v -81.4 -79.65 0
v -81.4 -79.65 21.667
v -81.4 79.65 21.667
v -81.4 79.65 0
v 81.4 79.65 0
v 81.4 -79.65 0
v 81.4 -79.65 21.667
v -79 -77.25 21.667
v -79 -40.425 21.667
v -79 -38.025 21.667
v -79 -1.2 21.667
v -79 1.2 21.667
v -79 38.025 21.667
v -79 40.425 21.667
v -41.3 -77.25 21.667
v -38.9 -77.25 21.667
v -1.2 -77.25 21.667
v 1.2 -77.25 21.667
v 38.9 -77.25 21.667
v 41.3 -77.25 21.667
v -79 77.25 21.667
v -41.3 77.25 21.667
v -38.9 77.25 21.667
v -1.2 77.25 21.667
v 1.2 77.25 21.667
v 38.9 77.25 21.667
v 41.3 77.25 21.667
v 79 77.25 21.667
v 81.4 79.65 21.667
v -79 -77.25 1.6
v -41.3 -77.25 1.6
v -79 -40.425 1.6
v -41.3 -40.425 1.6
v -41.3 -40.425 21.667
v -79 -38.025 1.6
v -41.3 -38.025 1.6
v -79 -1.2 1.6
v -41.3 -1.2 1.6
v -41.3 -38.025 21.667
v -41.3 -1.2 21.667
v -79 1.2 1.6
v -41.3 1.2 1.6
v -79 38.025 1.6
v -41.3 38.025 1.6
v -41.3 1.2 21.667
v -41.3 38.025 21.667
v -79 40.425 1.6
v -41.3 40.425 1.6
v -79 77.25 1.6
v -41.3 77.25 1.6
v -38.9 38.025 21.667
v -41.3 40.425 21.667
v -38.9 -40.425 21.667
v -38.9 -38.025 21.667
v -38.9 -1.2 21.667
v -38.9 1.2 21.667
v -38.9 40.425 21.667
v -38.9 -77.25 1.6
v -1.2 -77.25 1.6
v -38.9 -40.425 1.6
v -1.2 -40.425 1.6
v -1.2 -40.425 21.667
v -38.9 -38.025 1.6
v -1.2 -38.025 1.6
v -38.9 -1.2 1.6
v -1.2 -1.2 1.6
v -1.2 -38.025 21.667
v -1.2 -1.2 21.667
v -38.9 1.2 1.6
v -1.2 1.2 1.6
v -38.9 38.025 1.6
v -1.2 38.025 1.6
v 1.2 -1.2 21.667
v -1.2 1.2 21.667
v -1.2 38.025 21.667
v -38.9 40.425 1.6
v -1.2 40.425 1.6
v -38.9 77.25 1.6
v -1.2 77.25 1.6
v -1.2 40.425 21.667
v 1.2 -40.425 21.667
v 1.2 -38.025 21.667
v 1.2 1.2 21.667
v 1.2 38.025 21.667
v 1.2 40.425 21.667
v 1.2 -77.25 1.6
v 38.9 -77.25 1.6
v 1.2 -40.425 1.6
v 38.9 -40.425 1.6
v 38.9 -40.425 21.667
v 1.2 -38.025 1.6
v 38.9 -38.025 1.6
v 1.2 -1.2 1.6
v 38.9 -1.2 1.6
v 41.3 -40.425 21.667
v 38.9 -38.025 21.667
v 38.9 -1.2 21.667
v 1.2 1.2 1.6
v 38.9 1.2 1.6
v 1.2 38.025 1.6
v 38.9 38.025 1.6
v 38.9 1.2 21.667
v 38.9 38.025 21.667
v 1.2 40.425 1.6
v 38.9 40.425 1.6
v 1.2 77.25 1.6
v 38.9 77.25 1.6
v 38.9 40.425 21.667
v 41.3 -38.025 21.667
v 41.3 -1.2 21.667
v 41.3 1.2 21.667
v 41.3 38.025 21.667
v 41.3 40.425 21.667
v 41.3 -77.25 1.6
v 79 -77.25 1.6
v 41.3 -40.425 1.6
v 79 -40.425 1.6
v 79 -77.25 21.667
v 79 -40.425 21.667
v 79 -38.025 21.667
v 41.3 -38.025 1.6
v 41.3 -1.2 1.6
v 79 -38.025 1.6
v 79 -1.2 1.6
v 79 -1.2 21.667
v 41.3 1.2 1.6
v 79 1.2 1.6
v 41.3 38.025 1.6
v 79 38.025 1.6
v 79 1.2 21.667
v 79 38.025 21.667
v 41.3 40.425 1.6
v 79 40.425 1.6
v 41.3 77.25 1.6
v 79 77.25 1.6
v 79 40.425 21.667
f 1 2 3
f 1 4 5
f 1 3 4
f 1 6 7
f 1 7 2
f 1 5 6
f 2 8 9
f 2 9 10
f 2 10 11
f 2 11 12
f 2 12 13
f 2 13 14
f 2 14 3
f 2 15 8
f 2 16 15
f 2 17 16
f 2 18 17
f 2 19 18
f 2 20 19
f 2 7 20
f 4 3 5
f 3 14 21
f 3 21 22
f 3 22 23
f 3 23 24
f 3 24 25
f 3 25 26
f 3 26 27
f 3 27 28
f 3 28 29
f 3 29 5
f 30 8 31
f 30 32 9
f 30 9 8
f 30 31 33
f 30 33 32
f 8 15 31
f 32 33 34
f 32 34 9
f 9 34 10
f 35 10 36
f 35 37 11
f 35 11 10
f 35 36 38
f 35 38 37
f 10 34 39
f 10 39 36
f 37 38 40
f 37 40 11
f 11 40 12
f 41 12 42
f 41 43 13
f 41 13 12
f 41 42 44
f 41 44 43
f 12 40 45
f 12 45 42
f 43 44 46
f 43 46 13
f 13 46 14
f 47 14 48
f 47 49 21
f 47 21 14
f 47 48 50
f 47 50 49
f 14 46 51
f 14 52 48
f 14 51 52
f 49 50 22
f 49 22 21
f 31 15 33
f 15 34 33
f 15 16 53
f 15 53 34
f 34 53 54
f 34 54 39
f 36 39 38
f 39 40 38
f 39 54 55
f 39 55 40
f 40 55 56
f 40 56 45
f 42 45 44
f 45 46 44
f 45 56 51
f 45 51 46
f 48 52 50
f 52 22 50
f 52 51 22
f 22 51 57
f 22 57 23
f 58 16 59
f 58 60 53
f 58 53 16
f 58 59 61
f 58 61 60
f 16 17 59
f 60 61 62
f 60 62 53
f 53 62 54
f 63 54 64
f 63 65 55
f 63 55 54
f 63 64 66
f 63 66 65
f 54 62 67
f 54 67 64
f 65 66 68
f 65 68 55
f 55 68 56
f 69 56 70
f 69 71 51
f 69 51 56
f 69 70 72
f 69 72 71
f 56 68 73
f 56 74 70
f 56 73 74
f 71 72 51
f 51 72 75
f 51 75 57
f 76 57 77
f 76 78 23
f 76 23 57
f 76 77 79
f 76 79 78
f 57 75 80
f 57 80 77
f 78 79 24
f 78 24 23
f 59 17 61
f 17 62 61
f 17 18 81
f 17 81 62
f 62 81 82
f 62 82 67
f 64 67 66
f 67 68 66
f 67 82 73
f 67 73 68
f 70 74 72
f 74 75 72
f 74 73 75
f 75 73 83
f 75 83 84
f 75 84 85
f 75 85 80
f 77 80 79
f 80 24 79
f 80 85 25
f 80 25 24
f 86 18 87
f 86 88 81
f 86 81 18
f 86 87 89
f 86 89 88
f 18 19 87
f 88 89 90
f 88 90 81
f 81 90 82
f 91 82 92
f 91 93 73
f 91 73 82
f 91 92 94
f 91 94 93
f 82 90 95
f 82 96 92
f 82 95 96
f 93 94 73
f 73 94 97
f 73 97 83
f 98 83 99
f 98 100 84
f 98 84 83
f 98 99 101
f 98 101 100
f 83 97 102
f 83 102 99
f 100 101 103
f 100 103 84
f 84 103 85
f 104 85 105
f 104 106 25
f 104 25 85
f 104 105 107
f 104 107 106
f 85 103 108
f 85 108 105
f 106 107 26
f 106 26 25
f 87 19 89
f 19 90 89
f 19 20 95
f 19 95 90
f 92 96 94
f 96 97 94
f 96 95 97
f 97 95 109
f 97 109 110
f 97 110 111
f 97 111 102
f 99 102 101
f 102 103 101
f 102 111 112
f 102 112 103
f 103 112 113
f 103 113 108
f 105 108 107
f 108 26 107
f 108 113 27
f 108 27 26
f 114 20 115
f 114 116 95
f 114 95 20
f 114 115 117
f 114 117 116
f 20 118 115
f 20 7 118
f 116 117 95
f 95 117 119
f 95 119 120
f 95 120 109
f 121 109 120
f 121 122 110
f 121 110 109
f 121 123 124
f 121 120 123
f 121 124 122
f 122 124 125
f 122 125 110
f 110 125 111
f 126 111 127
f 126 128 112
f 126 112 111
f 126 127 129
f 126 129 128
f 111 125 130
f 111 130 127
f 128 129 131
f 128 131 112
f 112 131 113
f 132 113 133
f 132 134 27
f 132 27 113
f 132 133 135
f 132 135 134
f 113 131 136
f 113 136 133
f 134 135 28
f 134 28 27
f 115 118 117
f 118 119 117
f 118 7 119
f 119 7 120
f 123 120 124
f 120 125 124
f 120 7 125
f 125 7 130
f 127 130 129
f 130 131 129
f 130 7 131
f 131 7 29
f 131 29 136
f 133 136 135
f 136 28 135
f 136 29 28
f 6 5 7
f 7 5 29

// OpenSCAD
// Start: lazy_union
default_5_default_5();
// End: lazy_union

// Modules.

// 'PartMaterial undef-default - default 5.0'
module default_5_default_5() {
  // 'None : _combine_solids_and_holes'
  union() {
    // '_combine_solids_and_holes'
    difference() {
      // 'small_holes : _combine_solids_and_holes'
      union() {
        // 'box'
        multmatrix(m=[[1.0, 0.0, 0.0, -81.4], [0.0, 1.0, 0.0, -79.65], [0.0, 0.0, 1.0, 0.0], [0.0, 0.0, 0.0, 1.0]]) {
          // 'box : _combine_solids_and_holes'
          union() {
            // 'box'
            cube(size=[162.8, 159.3, 21.666666666666668]);
          }
        }
      }
      // 'small_holes'
      multmatrix(m=[[1.0, 0.0, 0.0, -79.0], [0.0, 1.0, 0.0, 40.425], [0.0, 0.0, 1.0, 1.6], [0.0, 0.0, 0.0, 1.0]]) {
        // "('hole', 0, 0) : _combine_solids_and_holes"
        union() {
          // ('hole', 0, 0)
          cube(size=[37.7, 36.825, 20.076666666666668]);
        }
      }
      // 'small_holes'
      multmatrix(m=[[1.0, 0.0, 0.0, -79.0], [0.0, 1.0, 0.0, 1.2000000000000028], [0.0, 0.0, 1.0, 1.6], [0.0, 0.0, 0.0, 1.0]]) {
        // "('hole', 0, 1) : _combine_solids_and_holes"
        union() {
          // ('hole', 0, 1)
          cube(size=[37.7, 36.825, 20.076666666666668]);
        }
      }
      // 'small_holes'
      multmatrix(m=[[1.0, 0.0, 0.0, -79.0], [0.0, 1.0, 0.0, -38.025000000000006], [0.0, 0.0, 1.0, 1.6], [0.0, 0.0, 0.0, 1.0]]) {
        // "('hole', 0, 2) : _combine_solids_and_holes"
        union() {
          // ('hole', 0, 2)
          cube(size=[37.7, 36.825, 20.076666666666668]);
        }
      }
      // 'small_holes'
      multmatrix(m=[[1.0, 0.0, 0.0, -79.0], [0.0, 1.0, 0.0, -77.25000000000001], [0.0, 0.0, 1.0, 1.6], [0.0, 0.0, 0.0, 1.0]]) {
        // "('hole', 0, 3) : _combine_solids_and_holes"
        union() {
          // ('hole', 0, 3)
          cube(size=[37.7, 36.825, 20.076666666666668]);
        }
      }
      // 'small_holes'
      multmatrix(m=[[1.0, 0.0, 0.0, -38.900000000000006], [0.0, 1.0, 0.0, 40.425], [0.0, 0.0, 1.0, 1.6], [0.0, 0.0, 0.0, 1.0]]) {
        // "('hole', 1, 0) : _combine_solids_and_holes"
        union() {
          // ('hole', 1, 0)
          cube(size=[37.7, 36.825, 20.076666666666668]);
        }
      }
      // 'small_holes'
      multmatrix(m=[[1.0, 0.0, 0.0, -38.900000000000006], [0.0, 1.0, 0.0, 1.2000000000000028], [0.0, 0.0, 1.0, 1.6], [0.0, 0.0, 0.0, 1.0]]) {
        // "('hole', 1, 1) : _combine_solids_and_holes"
        union() {
          // ('hole', 1, 1)
          cube(size=[37.7, 36.825, 20.076666666666668]);
        }
      }
      // 'small_holes'
      multmatrix(m=[[1.0, 0.0, 0.0, -38.900000000000006], [0.0, 1.0, 0.0, -38.025000000000006], [0.0, 0.0, 1.0, 1.6], [0.0, 0.0, 0.0, 1.0]]) {
        // "('hole', 1, 2) : _combine_solids_and_holes"
        union() {
          // ('hole', 1, 2)
          cube(size=[37.7, 36.825, 20.076666666666668]);
        }
      }
      // 'small_holes'
      multmatrix(m=[[1.0, 0.0, 0.0, -38.900000000000006], [0.0, 1.0, 0.0, -77.25000000000001], [0.0, 0.0, 1.0, 1.6], [0.0, 0.0, 0.0, 1.0]]) {
        // "('hole', 1, 3) : _combine_solids_and_holes"
        union() {
          // ('hole', 1, 3)
          cube(size=[37.7, 36.825, 20.076666666666668]);
        }
      }
      // 'small_holes'
      multmatrix(m=[[1.0, 0.0, 0.0, 1.2000000000000028], [0.0, 1.0, 0.0, 40.425], [0.0, 0.0, 1.0, 1.6], [0.0, 0.0, 0.0, 1.0]]) {
        // "('hole', 2, 0) : _combine_solids_and_holes"
        union() {
          // ('hole', 2, 0)
          cube(size=[37.7, 36.825, 20.076666666666668]);
        }
      }
      // 'small_holes'
      multmatrix(m=[[1.0, 0.0, 0.0, 1.2000000000000028], [0.0, 1.0, 0.0, 1.2000000000000028], [0.0, 0.0, 1.0, 1.6], [0.0, 0.0, 0.0, 1.0]]) {
        // "('hole', 2, 1) : _combine_solids_and_holes"
        union() {
          // ('hole', 2, 1)
          cube(size=[37.7, 36.825, 20.076666666666668]);
        }
      }
      // 'small_holes'
      multmatrix(m=[[1.0, 0.0, 0.0, 1.2000000000000028], [0.0, 1.0, 0.0, -38.025000000000006], [0.0, 0.0, 1.0, 1.6], [0.0, 0.0, 0.0, 1.0]]) {
        // "('hole', 2, 2) : _combine_solids_and_holes"
        union() {
          // ('hole', 2, 2)
          cube(size=[37.7, 36.825, 20.076666666666668]);
        }
      }
      // 'small_holes'
      multmatrix(m=[[1.0, 0.0, 0.0, 1.2000000000000028], [0.0, 1.0, 0.0, -77.25000000000001], [0.0, 0.0, 1.0, 1.6], [0.0, 0.0, 0.0, 1.0]]) {
        // "('hole', 2, 3) : _combine_solids_and_holes"
        union() {
          // ('hole', 2, 3)
          cube(size=[37.7, 36.825, 20.076666666666668]);
        }
      }
      // 'small_holes'
      multmatrix(m=[[1.0, 0.0, 0.0, 41.30000000000001], [0.0, 1.0, 0.0, 40.425], [0.0, 0.0, 1.0, 1.6], [0.0, 0.0, 0.0, 1.0]]) {
        // "('hole', 3, 0) : _combine_solids_and_holes"
        union() {
          // ('hole', 3, 0)
          cube(size=[37.7, 36.825, 20.076666666666668]);
        }
      }
      // 'small_holes'
      multmatrix(m=[[1.0, 0.0, 0.0, 41.30000000000001], [0.0, 1.0, 0.0, 1.2000000000000028], [0.0, 0.0, 1.0, 1.6], [0.0, 0.0, 0.0, 1.0]]) {
        // "('hole', 3, 1) : _combine_solids_and_holes"
        union() {
          // ('hole', 3, 1)
          cube(size=[37.7, 36.825, 20.076666666666668]);
        }
      }
      // 'small_holes'
      multmatrix(m=[[1.0, 0.0, 0.0, 41.30000000000001], [0.0, 1.0, 0.0, -38.025000000000006], [0.0, 0.0, 1.0, 1.6], [0.0, 0.0, 0.0, 1.0]]) {
        // "('hole', 3, 2) : _combine_solids_and_holes"
        union() {
          // ('hole', 3, 2)
          cube(size=[37.7, 36.825, 20.076666666666668]);
        }
      }
      // 'small_holes'
      multmatrix(m=[[1.0, 0.0, 0.0, 41.30000000000001], [0.0, 1.0, 0.0, -77.25000000000001], [0.0, 0.0, 1.0, 1.6], [0.0, 0.0, 0.0, 1.0]]) {
        // "('hole', 3, 3) : _combine_solids_and_holes"
        union() {
          // ('hole', 3, 3)
          cube(size=[37.7, 36.825, 20.076666666666668]);
        }
      }
    }
  }
} // end module default_5_default_5
